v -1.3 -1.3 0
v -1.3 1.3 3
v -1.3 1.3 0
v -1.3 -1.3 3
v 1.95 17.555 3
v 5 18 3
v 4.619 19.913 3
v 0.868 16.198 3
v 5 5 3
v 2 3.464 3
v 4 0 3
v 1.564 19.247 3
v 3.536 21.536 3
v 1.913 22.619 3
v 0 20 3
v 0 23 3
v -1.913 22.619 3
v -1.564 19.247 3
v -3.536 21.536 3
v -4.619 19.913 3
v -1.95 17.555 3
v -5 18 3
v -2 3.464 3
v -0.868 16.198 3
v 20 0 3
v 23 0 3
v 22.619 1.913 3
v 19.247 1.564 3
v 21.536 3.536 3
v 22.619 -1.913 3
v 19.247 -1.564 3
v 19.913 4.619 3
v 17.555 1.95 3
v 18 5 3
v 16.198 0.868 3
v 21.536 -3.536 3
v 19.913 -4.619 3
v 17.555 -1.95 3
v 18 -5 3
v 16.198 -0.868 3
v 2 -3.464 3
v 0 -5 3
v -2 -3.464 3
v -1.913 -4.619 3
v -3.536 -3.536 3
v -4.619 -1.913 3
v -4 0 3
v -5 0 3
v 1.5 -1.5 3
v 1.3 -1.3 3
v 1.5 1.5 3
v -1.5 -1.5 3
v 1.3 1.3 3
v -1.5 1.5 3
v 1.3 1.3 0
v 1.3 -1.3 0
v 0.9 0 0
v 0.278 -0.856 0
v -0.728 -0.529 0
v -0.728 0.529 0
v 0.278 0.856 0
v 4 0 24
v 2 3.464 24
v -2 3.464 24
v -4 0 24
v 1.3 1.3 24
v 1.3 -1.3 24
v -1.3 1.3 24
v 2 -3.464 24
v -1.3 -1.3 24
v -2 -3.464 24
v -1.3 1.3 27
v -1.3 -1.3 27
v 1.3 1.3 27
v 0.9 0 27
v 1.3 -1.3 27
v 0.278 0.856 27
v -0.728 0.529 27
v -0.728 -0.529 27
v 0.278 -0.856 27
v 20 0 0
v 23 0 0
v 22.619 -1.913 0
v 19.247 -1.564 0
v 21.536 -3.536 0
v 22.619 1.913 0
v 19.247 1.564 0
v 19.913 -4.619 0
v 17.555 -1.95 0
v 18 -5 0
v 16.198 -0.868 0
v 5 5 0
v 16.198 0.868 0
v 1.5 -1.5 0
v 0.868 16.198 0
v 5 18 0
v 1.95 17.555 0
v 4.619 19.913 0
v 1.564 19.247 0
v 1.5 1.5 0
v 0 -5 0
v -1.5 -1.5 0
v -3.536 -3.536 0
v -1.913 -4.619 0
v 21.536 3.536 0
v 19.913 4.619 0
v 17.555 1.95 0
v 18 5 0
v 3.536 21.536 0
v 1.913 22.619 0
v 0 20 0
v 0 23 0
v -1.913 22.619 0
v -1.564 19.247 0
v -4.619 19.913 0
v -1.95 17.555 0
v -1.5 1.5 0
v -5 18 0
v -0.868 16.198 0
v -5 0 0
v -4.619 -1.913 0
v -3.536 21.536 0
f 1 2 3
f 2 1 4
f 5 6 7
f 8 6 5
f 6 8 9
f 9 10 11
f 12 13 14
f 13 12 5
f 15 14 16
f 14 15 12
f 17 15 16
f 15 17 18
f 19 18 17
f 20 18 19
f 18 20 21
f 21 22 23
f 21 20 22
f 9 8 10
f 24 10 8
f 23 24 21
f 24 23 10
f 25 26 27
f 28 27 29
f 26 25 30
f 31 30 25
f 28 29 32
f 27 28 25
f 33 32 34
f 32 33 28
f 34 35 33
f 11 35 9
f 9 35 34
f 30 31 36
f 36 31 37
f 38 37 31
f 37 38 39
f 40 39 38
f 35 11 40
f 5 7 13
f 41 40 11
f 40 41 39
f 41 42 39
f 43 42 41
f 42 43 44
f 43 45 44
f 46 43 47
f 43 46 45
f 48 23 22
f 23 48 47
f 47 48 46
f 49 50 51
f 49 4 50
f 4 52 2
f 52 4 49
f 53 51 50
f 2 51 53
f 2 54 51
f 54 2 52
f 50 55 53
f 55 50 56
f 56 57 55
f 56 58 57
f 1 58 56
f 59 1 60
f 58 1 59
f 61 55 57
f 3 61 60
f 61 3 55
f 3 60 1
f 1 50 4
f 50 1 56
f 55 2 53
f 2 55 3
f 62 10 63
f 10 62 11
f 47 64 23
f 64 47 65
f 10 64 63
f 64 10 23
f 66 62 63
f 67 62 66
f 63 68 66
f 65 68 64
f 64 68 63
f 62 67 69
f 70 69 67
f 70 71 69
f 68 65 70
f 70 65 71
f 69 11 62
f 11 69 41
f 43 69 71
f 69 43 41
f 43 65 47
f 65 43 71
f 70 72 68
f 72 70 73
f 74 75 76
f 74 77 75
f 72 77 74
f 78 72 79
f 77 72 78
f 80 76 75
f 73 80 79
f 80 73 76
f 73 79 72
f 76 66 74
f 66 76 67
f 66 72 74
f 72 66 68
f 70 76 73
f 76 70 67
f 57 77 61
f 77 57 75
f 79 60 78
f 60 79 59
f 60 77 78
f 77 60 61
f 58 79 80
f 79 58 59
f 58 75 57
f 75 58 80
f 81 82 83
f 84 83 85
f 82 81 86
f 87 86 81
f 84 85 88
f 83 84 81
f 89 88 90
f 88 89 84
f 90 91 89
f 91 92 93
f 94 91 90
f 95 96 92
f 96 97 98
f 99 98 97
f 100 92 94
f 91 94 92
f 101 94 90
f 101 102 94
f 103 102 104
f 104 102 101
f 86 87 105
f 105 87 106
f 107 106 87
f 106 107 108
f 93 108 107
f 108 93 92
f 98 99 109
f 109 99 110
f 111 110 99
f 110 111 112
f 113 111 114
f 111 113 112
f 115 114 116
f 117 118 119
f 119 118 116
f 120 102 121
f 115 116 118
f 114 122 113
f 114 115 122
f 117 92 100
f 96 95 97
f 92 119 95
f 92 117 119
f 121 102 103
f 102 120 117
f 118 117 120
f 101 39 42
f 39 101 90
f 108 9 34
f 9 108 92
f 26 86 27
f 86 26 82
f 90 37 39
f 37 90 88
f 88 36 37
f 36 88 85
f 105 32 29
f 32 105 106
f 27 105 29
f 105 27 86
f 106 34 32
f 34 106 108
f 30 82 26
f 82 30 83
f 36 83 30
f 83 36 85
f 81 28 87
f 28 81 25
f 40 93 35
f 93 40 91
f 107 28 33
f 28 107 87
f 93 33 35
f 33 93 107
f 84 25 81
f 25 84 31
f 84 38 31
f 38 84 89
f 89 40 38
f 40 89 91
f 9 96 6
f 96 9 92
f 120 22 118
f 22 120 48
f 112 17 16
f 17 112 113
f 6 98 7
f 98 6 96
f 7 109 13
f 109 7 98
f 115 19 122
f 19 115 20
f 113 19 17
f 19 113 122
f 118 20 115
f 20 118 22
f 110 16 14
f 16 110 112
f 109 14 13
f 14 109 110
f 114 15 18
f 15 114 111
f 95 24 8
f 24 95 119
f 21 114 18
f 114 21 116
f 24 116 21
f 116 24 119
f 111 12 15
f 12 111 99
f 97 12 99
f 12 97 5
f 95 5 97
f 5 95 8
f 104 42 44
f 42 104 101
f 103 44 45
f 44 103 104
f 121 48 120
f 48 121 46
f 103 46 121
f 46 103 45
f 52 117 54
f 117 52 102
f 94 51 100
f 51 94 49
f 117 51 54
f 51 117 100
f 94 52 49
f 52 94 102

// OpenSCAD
// file: ModuleKatzenklappe.scad
// //////////////////////////////////
// Module für Katzenklappenverschluss
// //////////////////////////////////

module armHorn (laenge, breite, dicke) {
    difference() {
    union() {
    translate ([0,-breite/2,0])
    cube([laenge,breite,dicke], false);
    translate ([laenge,0,0])
    cylinder(dicke,r=breite/2, false); 
    }
    translate ([laenge*1.0,0,0])
    loch(radius=2,tiefe= dicke + 1);
/*    translate ([laenge*0.6,0,dicke-1])
    letter("Achim");
    translate ([laenge*0.6,0,1])
    rotate([0,180,0])
    letter("Tim");
    translate ([laenge*0.2,0,0])
    loch(radius=2,tiefe= dicke + 1);
*/    }
};

module mittelRad (breite) {
    difference() {
        cylinder(breite,r=12.5, false);
        cylinder(breite,r=2.0, false);
        
/*        translate([0,0,breite])
        gear (
            toothNo = 100, 
            toothWidth = 1, 
            toothHeight  = 2, 
            thickness = breite,
            holeRadius = 5,
            holeSides = 6
        );
        translate ([-25,0,0])
        loch(radius=5,tiefe=breite + 1);
        translate ([25,0,0])
        loch(radius=5,tiefe=breite + 1);
        translate ([0,-25,0])
        loch(radius=5,tiefe=breite + 1);
        translate ([0,25,0])
        loch(radius=5,tiefe=breite + 1);
*/        } 
};

module loch (radius, tiefe) {
        cylinder(tiefe,r=radius, false);   
};

module zapfen (breite,tiefe) {
        cube([breite,breite,tiefe], true);   
};

module wand (breite) {
    difference() {
        cube([breite,120,5], false);  
        translate ([5,5,0])
        cube([breite/3-10,110,5], false);  
        translate ([breite/3+5,5,0])
        cube([breite/3-10,110,5], false);  
        translate ([2*breite/3+5,5,0])
        cube([breite/3-10,110,5], false);  
    } 
};

module lArm(laenge, breite, dicke) {
    difference() {
        union() {
            armHorn(laenge=laenge, breite=breite, dicke=dicke);
            rotate(90) armHorn(laenge=laenge, breite=breite, dicke=dicke);
            cylinder(dicke,r=breite/2, false); 
           }
            translate ([0,0,0])
            zapfen(breite= 3, tiefe = dicke * 2);
        }
};

module mittelAchse(laenge, radius_achse, zapfen_breite, zapfen_laenge, breite) {
    difference() {
        union() {
            translate ([0,0,zapfen_laenge /2])
            zapfen(breite= zapfen_breite, tiefe=zapfen_laenge);   
            translate ([0,0,zapfen_laenge])
            cylinder(laenge,r = radius_achse, false, $fn=6);
            translate ([0,0,laenge+(1.5*zapfen_laenge)])
            zapfen(breite= zapfen_breite, tiefe=zapfen_laenge);   
        }
        cylinder (laenge+6,r=0.9, false);
    }
};

module achse(laenge, radius_achse) {
    difference() {
        cylinder(laenge,r = radius_achse, false, $fn=6);
        cylinder (laenge+6,r=0.9, false);
    }
};


module tooth(width, thickness, height){
  scale([width/5,thickness/5,height/10]){
    difference(){
      translate([-2.5,0,0])
      cube([5,5,10]);
      translate([5+1.25-2.5,0-1,0])
      rotate([0,-14.0362434,0])
        cube([5,5+2,12]);
      translate([0-1.25-2.5,0+5+1,0])
      rotate([0,-14.0362434,180])
        cube([5,5+2,12]);
    }
  }
}
module gear(toothNo, toothWidth, toothHeight, thickness,holeRadius,holeSides){
  radius = (toothWidth*1.7*toothNo)/3.141592653589793238/2;
  rotate([-90,0,0])
  difference(){
    union(){
      for(i=[0:toothNo]){
        rotate([0,(360/toothNo)*i,0])
        translate([0,0,radius-0.5])
          tooth(toothWidth,thickness,toothHeight);
      }
      translate([0,thickness,0])
      rotate([90,0,0])
        cylinder(r=radius, h=thickness);
    }
  translate([0,thickness+1,0])
  rotate([90,0,0])
    cylinder(r=holeRadius,h=thickness+2,$fn=holeSides);
  }
}

font = "Liberation Sans";


letter_size = 5;
letter_height = 3;


module letter(l) {
  // Use linear_extrude() to make the letters 3D objects as they
  // are only 2D shapes when only using text()
  linear_extrude(height = letter_height) {
    text(l, size = letter_size, font = font, halign = "center", valign = "center", $fn = 16);
  }
}


module 9g_motor(){
	difference(){			
		union(){
			color("SteelBlue") cube([23,12.5,22], center=true);
			color("SteelBlue") translate([0,0,5]) cube([32,12,2], center=true);
			color("SteelBlue") translate([5.5,0,2.75]) cylinder(r=6, h=25.75, $fn=20, center=true);
			color("SteelBlue") translate([-.5,0,2.75]) cylinder(r=1, h=25.75, $fn=20, center=true);
			color("SteelBlue") translate([-1,0,2.75]) cube([5,5.6,24.5], center=true);		
			color("white") translate([5.5,0,3.65]) cylinder(r=2.35, h=29.25, $fn=20, center=true);				
		}
		translate([10,0,-11]) rotate([0,-30,0]) cube([8,13,4], center=true);
		for ( hole = [14,-14] ){
			translate([hole,0,5]) cylinder(r=2.2, h=4, $fn=20, center=true);
		}	
	}
}

module sg90() {
	color("blue") difference() {
		union() {
			translate([0,0,22.5/2]) cube([22.5,12.2,22.5], center=true);
			translate([0,0,16.75]) cube([32.2,12.2,2], center=true);

			translate([0,0,22.5-1]) {
				hull() {
					translate([-1,0,0]) cylinder(d=5.5, h=4+1);
					translate([1,0,0]) cylinder(d=5.5, h=4+1);
				}

				translate([5.5,0,0]) cylinder(d=11.6, h=4+1);
			}

		}	

		translate([-32.5/2+2,0,16.75-2]) {
			cylinder(d=2, h=2+2);
			translate([-2,0,2]) cube([4,1,2+2], center=true);
		}
		translate([32.5/2-2,0,16.75-2]) {
			cylinder(d=2, h=2+2);
			translate([2,0,2]) cube([4,1,2+2], center=true);
		}
	}
	color("white") translate([5.5,0,22.5-1+4]) {
		difference() {
			cylinder(d=4.8, h=3+1);
			translate([0,0,1]) cylinder(d=2, h=4);
		}
	}
}

module stuetze (hoehe) {
    difference() {
        translate ([0,0,0])
        cube([hoehe,20,3], false);
        translate ([hoehe*0.8,10,0])
        cylinder(21,r=1.5, center=true);
        translate ([hoehe*0.7,10,0])
        cylinder(21,r=1.5, center=true);
        translate ([hoehe*0.6,10,0])
        cylinder(21,r=1.5, center=true);
        translate ([hoehe*0.5,10,0])
        cylinder(21,r=1.5, center=true);
    }
}

module balken (laenge) {
    difference() {
        translate ([0,-10,0])
        cube([5,laenge,3], false);
    }
/*    translate ([2.5,25,2.5])
        rotate(-90,90,0)
        letter("Design by Achim & Tim 2018");    
*/
}

module boden(laenge, breite) {
    difference() {
        cube([5,laenge,breite], false);
        rotate([0,90,0])
        translate ([-breite/2,laenge*0.1,0])
        cylinder(6,r=1.5, center=false);
        rotate([0,90,0])
        translate ([-breite/2,laenge*0.5,0])
        cylinder(6,r=1.5, center=false);
        rotate([0,90,0])
        translate ([-breite/2,laenge*0.9,0])
        cylinder(6,r=1.5, center=false);
    }
}

module wand(hoehe, anzahl, abstand) {
    for (a =[0:abstand:anzahl*abstand])
        translate ([0,a,0])
        stuetze(hoehe);
    translate ([0,10,0])
    balken(anzahl*abstand);
    translate ([hoehe-5,10,0])
    balken(anzahl*abstand);
}

module halterung(hoehe) {
    // Bodenplatte
    cube([5,22,36],false);
    difference(){
        // Motorhalterung
        cube([hoehe,22,15.5],false);
        translate ([hoehe-5,10,11])
        cylinder(6,r=0.5, center=false);
        translate ([10,10,11])
        cylinder(6,r=0.5, center=false);
    }
}
// main file
include <ModuleKatzenklappe.scad>;
include <gears.scad>;

zahnradabstand = 25;
gehaeusehoehe = 45;

// Maße eines L-Arms
lArmBreite  = 10;
lArmLaenge  = 18;
lArmDicke   = 3;

// Maße der Mittelachse
mittelAchseLaenge       = 21;
mittelAchseRadius       = 4;
mittelAchseZapfenBreite = 2.6;
mittelAchseZapfenLaenge = 3;
mittelAchseRadBreite    = 5;

// Zahnrad 3 mit 6-kantlock

/*
difference() {
    translate ([0,70,0])
    rotate([0,0,1/56*360])
    gear (number_of_teeth=28,
			circular_pitch=109.8,
            hub_diameter=7,
            bore_diameter=1.8,
			rim_width=2,
			rim_thickness=4,
			gear_thickness=4,
			hub_thickness=4,
			circles=0);
    translate ([0,70,-10])
    scale (1.01) mittelAchse(laenge = mittelAchseLaenge, radius_achse =     mittelAchseRadius, zapfen_breite = mittelAchseZapfenBreite, zapfen_laenge = mittelAchseZapfenLaenge, breite = mittelAchseRadBreite);
    translate ([0,70,-10])
    cylinder(20,r=2,true);
}

*/

// Verschluss
translate([0,0,0])
// Verschlussriegel unten
lArm(laenge=lArmLaenge,breite=lArmBreite,dicke=lArmDicke);

translate([0,0,0])
// Mittelachse
mittelAchse(laenge = mittelAchseLaenge, radius_achse = mittelAchseRadius, zapfen_breite = mittelAchseZapfenBreite, zapfen_laenge = mittelAchseZapfenLaenge, breite = mittelAchseRadBreite);
/* 
   
// Verschlussriegel oben
//        translate ([0,0,mittelAchseLaenge+lArmDicke])
rotate(-90) lArm(laenge=lArmLaenge,breite=lArmBreite,dicke=lArmDicke);

translate ([70,70,3.3])
rotate([0,-90,0]) 
rotate([0,0,30]) 
achse(laenge = 10, radius_achse = mittelAchseRadius);

*/
